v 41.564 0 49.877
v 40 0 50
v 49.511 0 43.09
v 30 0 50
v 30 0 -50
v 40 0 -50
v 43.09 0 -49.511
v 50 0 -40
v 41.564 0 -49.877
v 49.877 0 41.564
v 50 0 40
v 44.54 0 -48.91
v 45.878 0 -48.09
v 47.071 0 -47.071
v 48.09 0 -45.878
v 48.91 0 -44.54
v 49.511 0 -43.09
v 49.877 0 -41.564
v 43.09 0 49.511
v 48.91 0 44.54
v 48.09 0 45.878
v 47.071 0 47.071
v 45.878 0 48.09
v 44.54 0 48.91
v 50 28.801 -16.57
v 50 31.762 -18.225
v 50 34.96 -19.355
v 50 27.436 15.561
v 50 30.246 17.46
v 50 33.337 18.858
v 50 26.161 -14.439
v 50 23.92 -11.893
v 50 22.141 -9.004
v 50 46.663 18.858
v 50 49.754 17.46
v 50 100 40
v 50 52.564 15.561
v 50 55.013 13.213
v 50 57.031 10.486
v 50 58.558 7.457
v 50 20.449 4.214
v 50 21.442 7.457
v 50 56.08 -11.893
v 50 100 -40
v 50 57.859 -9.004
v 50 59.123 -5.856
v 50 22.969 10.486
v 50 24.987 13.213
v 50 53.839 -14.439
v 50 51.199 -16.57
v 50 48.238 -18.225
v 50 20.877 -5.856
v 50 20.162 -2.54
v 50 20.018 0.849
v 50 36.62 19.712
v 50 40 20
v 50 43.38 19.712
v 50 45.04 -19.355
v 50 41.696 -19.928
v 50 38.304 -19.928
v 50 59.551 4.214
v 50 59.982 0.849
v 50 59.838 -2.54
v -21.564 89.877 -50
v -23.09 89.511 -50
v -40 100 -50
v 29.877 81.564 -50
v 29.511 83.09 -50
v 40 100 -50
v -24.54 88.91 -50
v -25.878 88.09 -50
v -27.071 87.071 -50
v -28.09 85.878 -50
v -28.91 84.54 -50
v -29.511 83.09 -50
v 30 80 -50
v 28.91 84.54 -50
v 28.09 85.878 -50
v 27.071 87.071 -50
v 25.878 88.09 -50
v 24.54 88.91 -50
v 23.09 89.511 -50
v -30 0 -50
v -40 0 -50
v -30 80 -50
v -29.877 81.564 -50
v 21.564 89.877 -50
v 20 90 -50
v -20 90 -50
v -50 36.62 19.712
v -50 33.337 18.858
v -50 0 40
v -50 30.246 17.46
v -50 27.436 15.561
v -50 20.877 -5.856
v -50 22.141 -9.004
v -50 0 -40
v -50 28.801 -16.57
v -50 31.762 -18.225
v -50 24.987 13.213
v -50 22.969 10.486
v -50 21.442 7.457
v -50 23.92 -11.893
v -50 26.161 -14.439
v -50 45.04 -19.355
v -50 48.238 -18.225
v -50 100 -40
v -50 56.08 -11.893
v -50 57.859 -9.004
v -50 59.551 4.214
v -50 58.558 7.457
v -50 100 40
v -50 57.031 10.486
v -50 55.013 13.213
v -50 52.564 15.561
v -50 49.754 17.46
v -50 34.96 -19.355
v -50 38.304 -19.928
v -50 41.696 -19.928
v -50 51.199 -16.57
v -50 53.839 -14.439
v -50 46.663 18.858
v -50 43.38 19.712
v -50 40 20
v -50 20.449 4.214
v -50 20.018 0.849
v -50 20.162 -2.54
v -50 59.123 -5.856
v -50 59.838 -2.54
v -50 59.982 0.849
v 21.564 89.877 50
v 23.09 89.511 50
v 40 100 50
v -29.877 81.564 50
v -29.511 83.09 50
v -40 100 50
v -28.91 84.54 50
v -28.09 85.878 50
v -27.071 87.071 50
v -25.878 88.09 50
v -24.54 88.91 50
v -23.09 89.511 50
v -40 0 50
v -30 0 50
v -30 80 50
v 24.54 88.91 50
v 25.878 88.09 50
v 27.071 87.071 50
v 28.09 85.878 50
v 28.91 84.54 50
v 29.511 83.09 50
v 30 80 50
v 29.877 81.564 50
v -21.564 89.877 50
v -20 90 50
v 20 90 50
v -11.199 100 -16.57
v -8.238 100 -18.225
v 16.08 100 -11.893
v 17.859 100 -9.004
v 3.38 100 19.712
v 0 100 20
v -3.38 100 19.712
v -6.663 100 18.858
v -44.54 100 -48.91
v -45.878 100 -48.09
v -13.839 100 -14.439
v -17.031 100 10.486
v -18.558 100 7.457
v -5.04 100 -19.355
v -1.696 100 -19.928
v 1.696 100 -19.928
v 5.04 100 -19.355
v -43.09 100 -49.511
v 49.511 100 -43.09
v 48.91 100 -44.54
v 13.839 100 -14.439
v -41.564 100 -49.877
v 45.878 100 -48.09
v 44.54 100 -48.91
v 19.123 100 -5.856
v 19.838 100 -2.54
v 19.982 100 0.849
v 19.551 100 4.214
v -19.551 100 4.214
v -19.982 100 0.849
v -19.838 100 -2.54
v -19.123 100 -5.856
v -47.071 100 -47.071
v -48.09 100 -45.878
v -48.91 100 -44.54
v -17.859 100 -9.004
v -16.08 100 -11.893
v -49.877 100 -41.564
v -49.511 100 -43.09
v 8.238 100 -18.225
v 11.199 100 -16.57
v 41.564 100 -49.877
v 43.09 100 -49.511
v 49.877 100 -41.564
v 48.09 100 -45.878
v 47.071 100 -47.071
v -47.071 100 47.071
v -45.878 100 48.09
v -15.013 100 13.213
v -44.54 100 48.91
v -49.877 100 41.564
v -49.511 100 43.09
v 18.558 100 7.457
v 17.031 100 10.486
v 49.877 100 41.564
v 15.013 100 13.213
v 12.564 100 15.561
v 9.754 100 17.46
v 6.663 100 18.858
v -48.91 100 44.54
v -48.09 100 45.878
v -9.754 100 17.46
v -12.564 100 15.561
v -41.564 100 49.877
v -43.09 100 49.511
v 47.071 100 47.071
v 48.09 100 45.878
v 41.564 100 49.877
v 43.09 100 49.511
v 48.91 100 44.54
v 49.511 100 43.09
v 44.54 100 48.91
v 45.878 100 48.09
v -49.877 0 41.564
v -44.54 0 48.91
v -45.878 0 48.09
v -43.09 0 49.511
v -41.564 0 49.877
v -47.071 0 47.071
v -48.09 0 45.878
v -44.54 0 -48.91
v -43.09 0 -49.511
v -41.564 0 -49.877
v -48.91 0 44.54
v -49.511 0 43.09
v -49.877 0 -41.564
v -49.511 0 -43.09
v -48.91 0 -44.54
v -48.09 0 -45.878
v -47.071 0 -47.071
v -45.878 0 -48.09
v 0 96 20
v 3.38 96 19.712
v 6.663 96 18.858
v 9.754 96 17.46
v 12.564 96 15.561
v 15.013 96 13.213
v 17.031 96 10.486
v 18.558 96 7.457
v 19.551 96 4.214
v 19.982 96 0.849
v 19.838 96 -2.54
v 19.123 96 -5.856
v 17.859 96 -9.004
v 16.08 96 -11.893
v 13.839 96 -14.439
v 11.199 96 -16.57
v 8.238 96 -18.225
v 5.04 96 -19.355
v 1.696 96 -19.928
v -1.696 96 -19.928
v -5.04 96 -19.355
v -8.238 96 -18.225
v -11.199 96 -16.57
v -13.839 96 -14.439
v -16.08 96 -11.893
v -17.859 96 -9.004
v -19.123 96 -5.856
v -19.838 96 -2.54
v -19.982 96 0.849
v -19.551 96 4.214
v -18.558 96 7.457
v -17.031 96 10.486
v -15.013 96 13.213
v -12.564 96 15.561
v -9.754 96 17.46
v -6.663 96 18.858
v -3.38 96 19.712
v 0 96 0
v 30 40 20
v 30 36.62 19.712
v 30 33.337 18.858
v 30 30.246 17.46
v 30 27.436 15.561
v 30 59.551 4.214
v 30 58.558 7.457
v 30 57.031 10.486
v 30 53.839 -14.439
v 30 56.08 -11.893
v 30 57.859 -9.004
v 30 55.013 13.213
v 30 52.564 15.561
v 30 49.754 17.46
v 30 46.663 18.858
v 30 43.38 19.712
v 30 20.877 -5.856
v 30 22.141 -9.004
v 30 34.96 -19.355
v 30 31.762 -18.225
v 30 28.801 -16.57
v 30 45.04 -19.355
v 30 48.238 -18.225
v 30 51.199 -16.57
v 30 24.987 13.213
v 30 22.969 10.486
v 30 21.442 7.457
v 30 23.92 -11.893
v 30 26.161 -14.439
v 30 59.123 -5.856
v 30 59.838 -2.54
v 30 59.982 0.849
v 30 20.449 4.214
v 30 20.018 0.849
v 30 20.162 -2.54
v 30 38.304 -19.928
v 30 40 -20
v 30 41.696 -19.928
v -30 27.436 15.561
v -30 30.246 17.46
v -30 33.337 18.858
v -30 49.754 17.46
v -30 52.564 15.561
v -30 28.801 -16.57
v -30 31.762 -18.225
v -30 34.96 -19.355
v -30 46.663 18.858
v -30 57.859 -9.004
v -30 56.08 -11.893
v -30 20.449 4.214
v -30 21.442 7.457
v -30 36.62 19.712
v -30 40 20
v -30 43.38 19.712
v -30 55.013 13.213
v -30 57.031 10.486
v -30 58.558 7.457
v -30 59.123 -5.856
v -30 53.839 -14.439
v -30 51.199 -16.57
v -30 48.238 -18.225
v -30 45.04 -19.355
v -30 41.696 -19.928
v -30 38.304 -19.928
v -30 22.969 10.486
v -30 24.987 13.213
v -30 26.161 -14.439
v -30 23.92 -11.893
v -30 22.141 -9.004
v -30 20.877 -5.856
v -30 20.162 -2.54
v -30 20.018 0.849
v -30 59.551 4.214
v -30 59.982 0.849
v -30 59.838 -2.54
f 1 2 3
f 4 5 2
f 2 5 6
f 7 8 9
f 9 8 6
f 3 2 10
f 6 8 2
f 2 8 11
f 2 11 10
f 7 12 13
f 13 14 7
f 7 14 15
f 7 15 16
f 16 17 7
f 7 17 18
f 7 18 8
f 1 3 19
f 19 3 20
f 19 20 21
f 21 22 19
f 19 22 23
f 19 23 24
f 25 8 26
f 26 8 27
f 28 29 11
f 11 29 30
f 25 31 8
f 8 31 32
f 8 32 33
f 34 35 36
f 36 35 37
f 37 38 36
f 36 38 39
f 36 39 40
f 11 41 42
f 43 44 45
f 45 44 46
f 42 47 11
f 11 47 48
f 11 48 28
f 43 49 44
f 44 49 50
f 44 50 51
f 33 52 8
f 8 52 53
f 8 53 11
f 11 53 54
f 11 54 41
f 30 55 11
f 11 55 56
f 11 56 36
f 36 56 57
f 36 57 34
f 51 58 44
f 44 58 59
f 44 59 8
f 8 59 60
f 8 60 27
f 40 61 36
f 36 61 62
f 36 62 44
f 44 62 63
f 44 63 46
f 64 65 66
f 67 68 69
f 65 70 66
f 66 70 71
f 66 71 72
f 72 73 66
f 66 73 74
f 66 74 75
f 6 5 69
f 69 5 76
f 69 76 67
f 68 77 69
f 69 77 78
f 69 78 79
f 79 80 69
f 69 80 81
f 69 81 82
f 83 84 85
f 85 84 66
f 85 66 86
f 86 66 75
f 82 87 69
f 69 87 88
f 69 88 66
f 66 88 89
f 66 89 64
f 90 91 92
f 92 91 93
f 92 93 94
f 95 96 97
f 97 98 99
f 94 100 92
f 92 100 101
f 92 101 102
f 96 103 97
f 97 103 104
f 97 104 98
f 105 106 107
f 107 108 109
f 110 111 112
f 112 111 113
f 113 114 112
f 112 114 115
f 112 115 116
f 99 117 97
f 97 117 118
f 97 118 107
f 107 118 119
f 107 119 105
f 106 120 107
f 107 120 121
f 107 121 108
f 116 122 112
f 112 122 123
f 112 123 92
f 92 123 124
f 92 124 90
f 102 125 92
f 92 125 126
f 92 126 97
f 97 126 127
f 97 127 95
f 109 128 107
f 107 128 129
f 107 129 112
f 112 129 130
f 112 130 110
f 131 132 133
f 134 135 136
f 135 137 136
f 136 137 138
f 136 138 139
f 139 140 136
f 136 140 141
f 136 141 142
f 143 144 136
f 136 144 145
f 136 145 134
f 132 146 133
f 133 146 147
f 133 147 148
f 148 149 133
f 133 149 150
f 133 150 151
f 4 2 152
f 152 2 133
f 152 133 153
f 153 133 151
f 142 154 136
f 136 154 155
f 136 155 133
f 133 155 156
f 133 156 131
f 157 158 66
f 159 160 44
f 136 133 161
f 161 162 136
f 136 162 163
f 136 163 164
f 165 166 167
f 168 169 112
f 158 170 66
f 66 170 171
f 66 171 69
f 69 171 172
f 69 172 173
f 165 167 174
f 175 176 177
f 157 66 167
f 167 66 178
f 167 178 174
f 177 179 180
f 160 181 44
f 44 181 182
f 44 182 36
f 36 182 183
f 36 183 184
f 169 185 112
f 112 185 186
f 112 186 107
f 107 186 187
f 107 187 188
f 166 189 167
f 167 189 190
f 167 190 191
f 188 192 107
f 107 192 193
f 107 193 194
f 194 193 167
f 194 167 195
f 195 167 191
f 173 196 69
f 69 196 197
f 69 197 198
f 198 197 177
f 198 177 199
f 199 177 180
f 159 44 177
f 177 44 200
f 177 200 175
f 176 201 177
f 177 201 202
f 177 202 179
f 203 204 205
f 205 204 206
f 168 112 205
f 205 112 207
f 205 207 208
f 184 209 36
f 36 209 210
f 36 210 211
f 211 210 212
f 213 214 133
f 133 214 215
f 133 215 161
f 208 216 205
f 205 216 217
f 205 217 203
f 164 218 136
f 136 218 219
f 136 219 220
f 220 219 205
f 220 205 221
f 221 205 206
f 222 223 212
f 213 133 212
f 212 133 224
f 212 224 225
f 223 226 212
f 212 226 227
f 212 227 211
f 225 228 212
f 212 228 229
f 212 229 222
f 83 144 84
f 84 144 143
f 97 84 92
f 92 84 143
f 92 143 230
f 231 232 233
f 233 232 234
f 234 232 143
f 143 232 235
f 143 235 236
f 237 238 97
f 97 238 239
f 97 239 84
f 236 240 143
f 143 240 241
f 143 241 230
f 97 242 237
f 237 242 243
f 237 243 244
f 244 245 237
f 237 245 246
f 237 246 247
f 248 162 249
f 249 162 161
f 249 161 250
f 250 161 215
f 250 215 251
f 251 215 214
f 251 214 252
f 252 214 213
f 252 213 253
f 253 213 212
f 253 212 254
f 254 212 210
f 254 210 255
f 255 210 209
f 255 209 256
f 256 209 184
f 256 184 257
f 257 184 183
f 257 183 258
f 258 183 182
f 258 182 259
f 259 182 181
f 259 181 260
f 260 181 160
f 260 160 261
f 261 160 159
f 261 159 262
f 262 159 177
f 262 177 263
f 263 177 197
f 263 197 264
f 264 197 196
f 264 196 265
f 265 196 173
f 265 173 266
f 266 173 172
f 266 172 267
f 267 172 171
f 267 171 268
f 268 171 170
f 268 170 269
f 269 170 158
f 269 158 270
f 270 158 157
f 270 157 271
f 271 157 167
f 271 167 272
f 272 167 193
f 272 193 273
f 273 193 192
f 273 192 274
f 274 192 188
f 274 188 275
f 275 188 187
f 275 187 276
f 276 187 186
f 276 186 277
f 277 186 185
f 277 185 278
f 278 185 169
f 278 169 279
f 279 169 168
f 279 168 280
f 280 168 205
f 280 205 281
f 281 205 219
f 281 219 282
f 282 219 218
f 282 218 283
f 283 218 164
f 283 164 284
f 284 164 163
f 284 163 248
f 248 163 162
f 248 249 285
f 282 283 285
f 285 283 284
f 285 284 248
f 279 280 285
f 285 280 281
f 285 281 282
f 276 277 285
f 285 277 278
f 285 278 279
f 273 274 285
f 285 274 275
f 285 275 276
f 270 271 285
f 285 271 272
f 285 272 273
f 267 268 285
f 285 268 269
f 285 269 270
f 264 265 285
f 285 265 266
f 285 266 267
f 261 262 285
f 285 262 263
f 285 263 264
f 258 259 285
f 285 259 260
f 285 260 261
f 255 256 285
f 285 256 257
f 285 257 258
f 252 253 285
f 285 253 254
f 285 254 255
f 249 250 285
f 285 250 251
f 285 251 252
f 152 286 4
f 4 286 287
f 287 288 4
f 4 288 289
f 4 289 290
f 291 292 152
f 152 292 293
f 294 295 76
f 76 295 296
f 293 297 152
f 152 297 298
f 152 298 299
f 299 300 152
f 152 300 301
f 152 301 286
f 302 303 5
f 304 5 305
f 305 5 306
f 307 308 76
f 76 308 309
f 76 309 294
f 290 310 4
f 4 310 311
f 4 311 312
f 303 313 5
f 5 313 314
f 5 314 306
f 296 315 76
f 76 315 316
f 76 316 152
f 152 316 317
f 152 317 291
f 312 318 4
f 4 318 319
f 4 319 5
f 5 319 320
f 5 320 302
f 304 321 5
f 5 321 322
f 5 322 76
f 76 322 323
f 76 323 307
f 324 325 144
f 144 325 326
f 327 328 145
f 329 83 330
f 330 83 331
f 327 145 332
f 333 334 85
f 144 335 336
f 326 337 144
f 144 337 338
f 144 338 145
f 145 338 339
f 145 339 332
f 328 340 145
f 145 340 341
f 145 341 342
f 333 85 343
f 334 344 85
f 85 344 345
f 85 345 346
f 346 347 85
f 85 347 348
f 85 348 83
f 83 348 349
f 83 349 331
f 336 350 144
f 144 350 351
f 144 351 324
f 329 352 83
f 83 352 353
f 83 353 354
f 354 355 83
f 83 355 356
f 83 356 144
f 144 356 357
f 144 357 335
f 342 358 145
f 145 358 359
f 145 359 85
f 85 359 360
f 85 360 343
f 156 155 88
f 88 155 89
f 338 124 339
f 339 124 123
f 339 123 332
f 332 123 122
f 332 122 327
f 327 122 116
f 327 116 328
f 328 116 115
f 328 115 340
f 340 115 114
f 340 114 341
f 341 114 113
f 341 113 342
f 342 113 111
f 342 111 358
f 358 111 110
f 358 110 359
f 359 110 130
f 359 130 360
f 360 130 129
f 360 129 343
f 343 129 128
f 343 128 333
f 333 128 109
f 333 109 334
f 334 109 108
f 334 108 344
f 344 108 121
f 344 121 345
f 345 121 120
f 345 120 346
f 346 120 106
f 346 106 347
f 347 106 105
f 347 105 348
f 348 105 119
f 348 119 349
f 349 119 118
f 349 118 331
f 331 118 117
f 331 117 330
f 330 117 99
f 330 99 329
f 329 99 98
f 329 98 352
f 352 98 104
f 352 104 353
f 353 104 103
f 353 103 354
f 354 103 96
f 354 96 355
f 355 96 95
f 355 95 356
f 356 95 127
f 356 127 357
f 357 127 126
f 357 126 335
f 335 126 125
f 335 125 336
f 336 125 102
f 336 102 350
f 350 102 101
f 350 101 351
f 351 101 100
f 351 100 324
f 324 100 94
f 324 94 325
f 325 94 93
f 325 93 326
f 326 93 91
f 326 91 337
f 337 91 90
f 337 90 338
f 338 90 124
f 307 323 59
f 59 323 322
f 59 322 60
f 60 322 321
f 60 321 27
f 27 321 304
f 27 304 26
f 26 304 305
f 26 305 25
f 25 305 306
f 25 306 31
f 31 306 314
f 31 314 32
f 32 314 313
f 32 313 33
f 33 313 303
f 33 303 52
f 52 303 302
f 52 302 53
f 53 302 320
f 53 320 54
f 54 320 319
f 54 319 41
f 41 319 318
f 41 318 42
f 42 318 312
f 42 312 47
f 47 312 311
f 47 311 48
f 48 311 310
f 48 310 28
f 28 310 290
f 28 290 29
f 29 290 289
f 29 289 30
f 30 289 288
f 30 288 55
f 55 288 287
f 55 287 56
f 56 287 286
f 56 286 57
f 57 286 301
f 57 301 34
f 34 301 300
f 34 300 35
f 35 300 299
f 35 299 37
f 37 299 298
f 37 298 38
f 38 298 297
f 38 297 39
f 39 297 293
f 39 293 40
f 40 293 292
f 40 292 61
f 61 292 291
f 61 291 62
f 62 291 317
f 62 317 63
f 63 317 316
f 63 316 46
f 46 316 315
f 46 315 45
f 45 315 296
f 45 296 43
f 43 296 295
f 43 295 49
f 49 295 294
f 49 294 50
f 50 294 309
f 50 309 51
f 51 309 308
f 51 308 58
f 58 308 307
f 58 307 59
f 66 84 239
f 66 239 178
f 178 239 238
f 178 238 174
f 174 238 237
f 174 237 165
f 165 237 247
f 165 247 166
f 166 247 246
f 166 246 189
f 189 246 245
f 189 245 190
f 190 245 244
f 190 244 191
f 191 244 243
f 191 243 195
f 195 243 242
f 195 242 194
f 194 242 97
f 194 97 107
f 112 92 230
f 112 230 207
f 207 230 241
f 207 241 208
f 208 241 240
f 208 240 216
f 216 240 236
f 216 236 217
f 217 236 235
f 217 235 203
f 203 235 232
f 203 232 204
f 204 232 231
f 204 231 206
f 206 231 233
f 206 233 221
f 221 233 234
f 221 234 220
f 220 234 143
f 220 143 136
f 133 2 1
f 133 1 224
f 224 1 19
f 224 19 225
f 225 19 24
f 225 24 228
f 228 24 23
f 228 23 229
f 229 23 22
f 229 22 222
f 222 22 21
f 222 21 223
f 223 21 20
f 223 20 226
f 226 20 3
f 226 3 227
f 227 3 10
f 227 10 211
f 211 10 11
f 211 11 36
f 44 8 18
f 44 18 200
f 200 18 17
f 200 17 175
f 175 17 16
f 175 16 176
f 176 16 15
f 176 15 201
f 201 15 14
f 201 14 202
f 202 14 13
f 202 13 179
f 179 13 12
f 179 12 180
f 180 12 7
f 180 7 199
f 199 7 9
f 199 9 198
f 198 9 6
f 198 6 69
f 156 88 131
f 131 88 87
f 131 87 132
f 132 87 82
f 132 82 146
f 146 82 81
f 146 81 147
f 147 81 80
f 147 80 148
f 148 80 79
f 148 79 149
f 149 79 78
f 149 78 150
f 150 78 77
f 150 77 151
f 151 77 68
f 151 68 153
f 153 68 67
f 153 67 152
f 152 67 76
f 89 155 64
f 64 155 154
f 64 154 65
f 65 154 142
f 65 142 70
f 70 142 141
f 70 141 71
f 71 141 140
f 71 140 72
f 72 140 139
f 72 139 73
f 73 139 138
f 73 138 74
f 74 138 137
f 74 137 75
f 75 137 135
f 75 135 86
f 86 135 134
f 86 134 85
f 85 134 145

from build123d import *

# Parameters (mm, degrees)
SKETCH1_W           = 100
SKETCH1_H           = 100
BOSS_EXTRUDE1_DEPTH = 100
SKETCH2_R           = 20
CUT_EXTRUDE1_DEPTH  = 4
SKETCH3_W           = 60
SKETCH3_H           = 100
CUT_EXTRUDE2_DEPTH  = 90
SKETCH4_R           = 20
CUT_EXTRUDE3_DEPTH  = 135
FILLET1_R           = 10
FILLET2_R           = 10


with BuildPart() as part:
    # Sketch1 → Boss-Extrude1 (new body)
    with BuildSketch(Plane(origin=(0, 0, 0), x_dir=(1, 0, 0), z_dir=(0, 1, 0))):
        Rectangle(SKETCH1_W, SKETCH1_H)
    extrude(amount=BOSS_EXTRUDE1_DEPTH)

    # Sketch2 → Cut-Extrude1 (cut)
    with BuildSketch(Plane(origin=(0, 100, 0), x_dir=(1, 0, 0), z_dir=(0, 1, 0))):
        with Locations(Location((0, 0, 0), (0, 0, 270))):
            Circle(SKETCH2_R)
    extrude(amount=-CUT_EXTRUDE1_DEPTH, mode=Mode.SUBTRACT)

    # Sketch3 → Cut-Extrude2 (cut)
    with BuildSketch(Plane.XZ):
        Rectangle(SKETCH3_W, SKETCH3_H)
    extrude(amount=-CUT_EXTRUDE2_DEPTH, mode=Mode.SUBTRACT)

    # Sketch4 → Cut-Extrude3 (cut)
    with BuildSketch(Plane.ZY.offset(50)):
        with Locations((0, 40)):
            Circle(SKETCH4_R)
    extrude(amount=-CUT_EXTRUDE3_DEPTH, mode=Mode.SUBTRACT)

    # Fillet1
    fillet1_edges = [part.edges().sort_by_distance(p)[0] for p in [
        (50, 50, 50),
        (-50, 50, 50),
        (-50, 50, -50),
        (50, 50, -50),
    ]]
    fillet(fillet1_edges, radius=FILLET1_R)

    # Fillet2
    fillet2_edges = [part.edges().sort_by_distance(p)[0] for p in [
        (30, 90, 0),
        (-30, 90, 0),
    ]]
    fillet(fillet2_edges, radius=FILLET2_R)


solid = part.part
